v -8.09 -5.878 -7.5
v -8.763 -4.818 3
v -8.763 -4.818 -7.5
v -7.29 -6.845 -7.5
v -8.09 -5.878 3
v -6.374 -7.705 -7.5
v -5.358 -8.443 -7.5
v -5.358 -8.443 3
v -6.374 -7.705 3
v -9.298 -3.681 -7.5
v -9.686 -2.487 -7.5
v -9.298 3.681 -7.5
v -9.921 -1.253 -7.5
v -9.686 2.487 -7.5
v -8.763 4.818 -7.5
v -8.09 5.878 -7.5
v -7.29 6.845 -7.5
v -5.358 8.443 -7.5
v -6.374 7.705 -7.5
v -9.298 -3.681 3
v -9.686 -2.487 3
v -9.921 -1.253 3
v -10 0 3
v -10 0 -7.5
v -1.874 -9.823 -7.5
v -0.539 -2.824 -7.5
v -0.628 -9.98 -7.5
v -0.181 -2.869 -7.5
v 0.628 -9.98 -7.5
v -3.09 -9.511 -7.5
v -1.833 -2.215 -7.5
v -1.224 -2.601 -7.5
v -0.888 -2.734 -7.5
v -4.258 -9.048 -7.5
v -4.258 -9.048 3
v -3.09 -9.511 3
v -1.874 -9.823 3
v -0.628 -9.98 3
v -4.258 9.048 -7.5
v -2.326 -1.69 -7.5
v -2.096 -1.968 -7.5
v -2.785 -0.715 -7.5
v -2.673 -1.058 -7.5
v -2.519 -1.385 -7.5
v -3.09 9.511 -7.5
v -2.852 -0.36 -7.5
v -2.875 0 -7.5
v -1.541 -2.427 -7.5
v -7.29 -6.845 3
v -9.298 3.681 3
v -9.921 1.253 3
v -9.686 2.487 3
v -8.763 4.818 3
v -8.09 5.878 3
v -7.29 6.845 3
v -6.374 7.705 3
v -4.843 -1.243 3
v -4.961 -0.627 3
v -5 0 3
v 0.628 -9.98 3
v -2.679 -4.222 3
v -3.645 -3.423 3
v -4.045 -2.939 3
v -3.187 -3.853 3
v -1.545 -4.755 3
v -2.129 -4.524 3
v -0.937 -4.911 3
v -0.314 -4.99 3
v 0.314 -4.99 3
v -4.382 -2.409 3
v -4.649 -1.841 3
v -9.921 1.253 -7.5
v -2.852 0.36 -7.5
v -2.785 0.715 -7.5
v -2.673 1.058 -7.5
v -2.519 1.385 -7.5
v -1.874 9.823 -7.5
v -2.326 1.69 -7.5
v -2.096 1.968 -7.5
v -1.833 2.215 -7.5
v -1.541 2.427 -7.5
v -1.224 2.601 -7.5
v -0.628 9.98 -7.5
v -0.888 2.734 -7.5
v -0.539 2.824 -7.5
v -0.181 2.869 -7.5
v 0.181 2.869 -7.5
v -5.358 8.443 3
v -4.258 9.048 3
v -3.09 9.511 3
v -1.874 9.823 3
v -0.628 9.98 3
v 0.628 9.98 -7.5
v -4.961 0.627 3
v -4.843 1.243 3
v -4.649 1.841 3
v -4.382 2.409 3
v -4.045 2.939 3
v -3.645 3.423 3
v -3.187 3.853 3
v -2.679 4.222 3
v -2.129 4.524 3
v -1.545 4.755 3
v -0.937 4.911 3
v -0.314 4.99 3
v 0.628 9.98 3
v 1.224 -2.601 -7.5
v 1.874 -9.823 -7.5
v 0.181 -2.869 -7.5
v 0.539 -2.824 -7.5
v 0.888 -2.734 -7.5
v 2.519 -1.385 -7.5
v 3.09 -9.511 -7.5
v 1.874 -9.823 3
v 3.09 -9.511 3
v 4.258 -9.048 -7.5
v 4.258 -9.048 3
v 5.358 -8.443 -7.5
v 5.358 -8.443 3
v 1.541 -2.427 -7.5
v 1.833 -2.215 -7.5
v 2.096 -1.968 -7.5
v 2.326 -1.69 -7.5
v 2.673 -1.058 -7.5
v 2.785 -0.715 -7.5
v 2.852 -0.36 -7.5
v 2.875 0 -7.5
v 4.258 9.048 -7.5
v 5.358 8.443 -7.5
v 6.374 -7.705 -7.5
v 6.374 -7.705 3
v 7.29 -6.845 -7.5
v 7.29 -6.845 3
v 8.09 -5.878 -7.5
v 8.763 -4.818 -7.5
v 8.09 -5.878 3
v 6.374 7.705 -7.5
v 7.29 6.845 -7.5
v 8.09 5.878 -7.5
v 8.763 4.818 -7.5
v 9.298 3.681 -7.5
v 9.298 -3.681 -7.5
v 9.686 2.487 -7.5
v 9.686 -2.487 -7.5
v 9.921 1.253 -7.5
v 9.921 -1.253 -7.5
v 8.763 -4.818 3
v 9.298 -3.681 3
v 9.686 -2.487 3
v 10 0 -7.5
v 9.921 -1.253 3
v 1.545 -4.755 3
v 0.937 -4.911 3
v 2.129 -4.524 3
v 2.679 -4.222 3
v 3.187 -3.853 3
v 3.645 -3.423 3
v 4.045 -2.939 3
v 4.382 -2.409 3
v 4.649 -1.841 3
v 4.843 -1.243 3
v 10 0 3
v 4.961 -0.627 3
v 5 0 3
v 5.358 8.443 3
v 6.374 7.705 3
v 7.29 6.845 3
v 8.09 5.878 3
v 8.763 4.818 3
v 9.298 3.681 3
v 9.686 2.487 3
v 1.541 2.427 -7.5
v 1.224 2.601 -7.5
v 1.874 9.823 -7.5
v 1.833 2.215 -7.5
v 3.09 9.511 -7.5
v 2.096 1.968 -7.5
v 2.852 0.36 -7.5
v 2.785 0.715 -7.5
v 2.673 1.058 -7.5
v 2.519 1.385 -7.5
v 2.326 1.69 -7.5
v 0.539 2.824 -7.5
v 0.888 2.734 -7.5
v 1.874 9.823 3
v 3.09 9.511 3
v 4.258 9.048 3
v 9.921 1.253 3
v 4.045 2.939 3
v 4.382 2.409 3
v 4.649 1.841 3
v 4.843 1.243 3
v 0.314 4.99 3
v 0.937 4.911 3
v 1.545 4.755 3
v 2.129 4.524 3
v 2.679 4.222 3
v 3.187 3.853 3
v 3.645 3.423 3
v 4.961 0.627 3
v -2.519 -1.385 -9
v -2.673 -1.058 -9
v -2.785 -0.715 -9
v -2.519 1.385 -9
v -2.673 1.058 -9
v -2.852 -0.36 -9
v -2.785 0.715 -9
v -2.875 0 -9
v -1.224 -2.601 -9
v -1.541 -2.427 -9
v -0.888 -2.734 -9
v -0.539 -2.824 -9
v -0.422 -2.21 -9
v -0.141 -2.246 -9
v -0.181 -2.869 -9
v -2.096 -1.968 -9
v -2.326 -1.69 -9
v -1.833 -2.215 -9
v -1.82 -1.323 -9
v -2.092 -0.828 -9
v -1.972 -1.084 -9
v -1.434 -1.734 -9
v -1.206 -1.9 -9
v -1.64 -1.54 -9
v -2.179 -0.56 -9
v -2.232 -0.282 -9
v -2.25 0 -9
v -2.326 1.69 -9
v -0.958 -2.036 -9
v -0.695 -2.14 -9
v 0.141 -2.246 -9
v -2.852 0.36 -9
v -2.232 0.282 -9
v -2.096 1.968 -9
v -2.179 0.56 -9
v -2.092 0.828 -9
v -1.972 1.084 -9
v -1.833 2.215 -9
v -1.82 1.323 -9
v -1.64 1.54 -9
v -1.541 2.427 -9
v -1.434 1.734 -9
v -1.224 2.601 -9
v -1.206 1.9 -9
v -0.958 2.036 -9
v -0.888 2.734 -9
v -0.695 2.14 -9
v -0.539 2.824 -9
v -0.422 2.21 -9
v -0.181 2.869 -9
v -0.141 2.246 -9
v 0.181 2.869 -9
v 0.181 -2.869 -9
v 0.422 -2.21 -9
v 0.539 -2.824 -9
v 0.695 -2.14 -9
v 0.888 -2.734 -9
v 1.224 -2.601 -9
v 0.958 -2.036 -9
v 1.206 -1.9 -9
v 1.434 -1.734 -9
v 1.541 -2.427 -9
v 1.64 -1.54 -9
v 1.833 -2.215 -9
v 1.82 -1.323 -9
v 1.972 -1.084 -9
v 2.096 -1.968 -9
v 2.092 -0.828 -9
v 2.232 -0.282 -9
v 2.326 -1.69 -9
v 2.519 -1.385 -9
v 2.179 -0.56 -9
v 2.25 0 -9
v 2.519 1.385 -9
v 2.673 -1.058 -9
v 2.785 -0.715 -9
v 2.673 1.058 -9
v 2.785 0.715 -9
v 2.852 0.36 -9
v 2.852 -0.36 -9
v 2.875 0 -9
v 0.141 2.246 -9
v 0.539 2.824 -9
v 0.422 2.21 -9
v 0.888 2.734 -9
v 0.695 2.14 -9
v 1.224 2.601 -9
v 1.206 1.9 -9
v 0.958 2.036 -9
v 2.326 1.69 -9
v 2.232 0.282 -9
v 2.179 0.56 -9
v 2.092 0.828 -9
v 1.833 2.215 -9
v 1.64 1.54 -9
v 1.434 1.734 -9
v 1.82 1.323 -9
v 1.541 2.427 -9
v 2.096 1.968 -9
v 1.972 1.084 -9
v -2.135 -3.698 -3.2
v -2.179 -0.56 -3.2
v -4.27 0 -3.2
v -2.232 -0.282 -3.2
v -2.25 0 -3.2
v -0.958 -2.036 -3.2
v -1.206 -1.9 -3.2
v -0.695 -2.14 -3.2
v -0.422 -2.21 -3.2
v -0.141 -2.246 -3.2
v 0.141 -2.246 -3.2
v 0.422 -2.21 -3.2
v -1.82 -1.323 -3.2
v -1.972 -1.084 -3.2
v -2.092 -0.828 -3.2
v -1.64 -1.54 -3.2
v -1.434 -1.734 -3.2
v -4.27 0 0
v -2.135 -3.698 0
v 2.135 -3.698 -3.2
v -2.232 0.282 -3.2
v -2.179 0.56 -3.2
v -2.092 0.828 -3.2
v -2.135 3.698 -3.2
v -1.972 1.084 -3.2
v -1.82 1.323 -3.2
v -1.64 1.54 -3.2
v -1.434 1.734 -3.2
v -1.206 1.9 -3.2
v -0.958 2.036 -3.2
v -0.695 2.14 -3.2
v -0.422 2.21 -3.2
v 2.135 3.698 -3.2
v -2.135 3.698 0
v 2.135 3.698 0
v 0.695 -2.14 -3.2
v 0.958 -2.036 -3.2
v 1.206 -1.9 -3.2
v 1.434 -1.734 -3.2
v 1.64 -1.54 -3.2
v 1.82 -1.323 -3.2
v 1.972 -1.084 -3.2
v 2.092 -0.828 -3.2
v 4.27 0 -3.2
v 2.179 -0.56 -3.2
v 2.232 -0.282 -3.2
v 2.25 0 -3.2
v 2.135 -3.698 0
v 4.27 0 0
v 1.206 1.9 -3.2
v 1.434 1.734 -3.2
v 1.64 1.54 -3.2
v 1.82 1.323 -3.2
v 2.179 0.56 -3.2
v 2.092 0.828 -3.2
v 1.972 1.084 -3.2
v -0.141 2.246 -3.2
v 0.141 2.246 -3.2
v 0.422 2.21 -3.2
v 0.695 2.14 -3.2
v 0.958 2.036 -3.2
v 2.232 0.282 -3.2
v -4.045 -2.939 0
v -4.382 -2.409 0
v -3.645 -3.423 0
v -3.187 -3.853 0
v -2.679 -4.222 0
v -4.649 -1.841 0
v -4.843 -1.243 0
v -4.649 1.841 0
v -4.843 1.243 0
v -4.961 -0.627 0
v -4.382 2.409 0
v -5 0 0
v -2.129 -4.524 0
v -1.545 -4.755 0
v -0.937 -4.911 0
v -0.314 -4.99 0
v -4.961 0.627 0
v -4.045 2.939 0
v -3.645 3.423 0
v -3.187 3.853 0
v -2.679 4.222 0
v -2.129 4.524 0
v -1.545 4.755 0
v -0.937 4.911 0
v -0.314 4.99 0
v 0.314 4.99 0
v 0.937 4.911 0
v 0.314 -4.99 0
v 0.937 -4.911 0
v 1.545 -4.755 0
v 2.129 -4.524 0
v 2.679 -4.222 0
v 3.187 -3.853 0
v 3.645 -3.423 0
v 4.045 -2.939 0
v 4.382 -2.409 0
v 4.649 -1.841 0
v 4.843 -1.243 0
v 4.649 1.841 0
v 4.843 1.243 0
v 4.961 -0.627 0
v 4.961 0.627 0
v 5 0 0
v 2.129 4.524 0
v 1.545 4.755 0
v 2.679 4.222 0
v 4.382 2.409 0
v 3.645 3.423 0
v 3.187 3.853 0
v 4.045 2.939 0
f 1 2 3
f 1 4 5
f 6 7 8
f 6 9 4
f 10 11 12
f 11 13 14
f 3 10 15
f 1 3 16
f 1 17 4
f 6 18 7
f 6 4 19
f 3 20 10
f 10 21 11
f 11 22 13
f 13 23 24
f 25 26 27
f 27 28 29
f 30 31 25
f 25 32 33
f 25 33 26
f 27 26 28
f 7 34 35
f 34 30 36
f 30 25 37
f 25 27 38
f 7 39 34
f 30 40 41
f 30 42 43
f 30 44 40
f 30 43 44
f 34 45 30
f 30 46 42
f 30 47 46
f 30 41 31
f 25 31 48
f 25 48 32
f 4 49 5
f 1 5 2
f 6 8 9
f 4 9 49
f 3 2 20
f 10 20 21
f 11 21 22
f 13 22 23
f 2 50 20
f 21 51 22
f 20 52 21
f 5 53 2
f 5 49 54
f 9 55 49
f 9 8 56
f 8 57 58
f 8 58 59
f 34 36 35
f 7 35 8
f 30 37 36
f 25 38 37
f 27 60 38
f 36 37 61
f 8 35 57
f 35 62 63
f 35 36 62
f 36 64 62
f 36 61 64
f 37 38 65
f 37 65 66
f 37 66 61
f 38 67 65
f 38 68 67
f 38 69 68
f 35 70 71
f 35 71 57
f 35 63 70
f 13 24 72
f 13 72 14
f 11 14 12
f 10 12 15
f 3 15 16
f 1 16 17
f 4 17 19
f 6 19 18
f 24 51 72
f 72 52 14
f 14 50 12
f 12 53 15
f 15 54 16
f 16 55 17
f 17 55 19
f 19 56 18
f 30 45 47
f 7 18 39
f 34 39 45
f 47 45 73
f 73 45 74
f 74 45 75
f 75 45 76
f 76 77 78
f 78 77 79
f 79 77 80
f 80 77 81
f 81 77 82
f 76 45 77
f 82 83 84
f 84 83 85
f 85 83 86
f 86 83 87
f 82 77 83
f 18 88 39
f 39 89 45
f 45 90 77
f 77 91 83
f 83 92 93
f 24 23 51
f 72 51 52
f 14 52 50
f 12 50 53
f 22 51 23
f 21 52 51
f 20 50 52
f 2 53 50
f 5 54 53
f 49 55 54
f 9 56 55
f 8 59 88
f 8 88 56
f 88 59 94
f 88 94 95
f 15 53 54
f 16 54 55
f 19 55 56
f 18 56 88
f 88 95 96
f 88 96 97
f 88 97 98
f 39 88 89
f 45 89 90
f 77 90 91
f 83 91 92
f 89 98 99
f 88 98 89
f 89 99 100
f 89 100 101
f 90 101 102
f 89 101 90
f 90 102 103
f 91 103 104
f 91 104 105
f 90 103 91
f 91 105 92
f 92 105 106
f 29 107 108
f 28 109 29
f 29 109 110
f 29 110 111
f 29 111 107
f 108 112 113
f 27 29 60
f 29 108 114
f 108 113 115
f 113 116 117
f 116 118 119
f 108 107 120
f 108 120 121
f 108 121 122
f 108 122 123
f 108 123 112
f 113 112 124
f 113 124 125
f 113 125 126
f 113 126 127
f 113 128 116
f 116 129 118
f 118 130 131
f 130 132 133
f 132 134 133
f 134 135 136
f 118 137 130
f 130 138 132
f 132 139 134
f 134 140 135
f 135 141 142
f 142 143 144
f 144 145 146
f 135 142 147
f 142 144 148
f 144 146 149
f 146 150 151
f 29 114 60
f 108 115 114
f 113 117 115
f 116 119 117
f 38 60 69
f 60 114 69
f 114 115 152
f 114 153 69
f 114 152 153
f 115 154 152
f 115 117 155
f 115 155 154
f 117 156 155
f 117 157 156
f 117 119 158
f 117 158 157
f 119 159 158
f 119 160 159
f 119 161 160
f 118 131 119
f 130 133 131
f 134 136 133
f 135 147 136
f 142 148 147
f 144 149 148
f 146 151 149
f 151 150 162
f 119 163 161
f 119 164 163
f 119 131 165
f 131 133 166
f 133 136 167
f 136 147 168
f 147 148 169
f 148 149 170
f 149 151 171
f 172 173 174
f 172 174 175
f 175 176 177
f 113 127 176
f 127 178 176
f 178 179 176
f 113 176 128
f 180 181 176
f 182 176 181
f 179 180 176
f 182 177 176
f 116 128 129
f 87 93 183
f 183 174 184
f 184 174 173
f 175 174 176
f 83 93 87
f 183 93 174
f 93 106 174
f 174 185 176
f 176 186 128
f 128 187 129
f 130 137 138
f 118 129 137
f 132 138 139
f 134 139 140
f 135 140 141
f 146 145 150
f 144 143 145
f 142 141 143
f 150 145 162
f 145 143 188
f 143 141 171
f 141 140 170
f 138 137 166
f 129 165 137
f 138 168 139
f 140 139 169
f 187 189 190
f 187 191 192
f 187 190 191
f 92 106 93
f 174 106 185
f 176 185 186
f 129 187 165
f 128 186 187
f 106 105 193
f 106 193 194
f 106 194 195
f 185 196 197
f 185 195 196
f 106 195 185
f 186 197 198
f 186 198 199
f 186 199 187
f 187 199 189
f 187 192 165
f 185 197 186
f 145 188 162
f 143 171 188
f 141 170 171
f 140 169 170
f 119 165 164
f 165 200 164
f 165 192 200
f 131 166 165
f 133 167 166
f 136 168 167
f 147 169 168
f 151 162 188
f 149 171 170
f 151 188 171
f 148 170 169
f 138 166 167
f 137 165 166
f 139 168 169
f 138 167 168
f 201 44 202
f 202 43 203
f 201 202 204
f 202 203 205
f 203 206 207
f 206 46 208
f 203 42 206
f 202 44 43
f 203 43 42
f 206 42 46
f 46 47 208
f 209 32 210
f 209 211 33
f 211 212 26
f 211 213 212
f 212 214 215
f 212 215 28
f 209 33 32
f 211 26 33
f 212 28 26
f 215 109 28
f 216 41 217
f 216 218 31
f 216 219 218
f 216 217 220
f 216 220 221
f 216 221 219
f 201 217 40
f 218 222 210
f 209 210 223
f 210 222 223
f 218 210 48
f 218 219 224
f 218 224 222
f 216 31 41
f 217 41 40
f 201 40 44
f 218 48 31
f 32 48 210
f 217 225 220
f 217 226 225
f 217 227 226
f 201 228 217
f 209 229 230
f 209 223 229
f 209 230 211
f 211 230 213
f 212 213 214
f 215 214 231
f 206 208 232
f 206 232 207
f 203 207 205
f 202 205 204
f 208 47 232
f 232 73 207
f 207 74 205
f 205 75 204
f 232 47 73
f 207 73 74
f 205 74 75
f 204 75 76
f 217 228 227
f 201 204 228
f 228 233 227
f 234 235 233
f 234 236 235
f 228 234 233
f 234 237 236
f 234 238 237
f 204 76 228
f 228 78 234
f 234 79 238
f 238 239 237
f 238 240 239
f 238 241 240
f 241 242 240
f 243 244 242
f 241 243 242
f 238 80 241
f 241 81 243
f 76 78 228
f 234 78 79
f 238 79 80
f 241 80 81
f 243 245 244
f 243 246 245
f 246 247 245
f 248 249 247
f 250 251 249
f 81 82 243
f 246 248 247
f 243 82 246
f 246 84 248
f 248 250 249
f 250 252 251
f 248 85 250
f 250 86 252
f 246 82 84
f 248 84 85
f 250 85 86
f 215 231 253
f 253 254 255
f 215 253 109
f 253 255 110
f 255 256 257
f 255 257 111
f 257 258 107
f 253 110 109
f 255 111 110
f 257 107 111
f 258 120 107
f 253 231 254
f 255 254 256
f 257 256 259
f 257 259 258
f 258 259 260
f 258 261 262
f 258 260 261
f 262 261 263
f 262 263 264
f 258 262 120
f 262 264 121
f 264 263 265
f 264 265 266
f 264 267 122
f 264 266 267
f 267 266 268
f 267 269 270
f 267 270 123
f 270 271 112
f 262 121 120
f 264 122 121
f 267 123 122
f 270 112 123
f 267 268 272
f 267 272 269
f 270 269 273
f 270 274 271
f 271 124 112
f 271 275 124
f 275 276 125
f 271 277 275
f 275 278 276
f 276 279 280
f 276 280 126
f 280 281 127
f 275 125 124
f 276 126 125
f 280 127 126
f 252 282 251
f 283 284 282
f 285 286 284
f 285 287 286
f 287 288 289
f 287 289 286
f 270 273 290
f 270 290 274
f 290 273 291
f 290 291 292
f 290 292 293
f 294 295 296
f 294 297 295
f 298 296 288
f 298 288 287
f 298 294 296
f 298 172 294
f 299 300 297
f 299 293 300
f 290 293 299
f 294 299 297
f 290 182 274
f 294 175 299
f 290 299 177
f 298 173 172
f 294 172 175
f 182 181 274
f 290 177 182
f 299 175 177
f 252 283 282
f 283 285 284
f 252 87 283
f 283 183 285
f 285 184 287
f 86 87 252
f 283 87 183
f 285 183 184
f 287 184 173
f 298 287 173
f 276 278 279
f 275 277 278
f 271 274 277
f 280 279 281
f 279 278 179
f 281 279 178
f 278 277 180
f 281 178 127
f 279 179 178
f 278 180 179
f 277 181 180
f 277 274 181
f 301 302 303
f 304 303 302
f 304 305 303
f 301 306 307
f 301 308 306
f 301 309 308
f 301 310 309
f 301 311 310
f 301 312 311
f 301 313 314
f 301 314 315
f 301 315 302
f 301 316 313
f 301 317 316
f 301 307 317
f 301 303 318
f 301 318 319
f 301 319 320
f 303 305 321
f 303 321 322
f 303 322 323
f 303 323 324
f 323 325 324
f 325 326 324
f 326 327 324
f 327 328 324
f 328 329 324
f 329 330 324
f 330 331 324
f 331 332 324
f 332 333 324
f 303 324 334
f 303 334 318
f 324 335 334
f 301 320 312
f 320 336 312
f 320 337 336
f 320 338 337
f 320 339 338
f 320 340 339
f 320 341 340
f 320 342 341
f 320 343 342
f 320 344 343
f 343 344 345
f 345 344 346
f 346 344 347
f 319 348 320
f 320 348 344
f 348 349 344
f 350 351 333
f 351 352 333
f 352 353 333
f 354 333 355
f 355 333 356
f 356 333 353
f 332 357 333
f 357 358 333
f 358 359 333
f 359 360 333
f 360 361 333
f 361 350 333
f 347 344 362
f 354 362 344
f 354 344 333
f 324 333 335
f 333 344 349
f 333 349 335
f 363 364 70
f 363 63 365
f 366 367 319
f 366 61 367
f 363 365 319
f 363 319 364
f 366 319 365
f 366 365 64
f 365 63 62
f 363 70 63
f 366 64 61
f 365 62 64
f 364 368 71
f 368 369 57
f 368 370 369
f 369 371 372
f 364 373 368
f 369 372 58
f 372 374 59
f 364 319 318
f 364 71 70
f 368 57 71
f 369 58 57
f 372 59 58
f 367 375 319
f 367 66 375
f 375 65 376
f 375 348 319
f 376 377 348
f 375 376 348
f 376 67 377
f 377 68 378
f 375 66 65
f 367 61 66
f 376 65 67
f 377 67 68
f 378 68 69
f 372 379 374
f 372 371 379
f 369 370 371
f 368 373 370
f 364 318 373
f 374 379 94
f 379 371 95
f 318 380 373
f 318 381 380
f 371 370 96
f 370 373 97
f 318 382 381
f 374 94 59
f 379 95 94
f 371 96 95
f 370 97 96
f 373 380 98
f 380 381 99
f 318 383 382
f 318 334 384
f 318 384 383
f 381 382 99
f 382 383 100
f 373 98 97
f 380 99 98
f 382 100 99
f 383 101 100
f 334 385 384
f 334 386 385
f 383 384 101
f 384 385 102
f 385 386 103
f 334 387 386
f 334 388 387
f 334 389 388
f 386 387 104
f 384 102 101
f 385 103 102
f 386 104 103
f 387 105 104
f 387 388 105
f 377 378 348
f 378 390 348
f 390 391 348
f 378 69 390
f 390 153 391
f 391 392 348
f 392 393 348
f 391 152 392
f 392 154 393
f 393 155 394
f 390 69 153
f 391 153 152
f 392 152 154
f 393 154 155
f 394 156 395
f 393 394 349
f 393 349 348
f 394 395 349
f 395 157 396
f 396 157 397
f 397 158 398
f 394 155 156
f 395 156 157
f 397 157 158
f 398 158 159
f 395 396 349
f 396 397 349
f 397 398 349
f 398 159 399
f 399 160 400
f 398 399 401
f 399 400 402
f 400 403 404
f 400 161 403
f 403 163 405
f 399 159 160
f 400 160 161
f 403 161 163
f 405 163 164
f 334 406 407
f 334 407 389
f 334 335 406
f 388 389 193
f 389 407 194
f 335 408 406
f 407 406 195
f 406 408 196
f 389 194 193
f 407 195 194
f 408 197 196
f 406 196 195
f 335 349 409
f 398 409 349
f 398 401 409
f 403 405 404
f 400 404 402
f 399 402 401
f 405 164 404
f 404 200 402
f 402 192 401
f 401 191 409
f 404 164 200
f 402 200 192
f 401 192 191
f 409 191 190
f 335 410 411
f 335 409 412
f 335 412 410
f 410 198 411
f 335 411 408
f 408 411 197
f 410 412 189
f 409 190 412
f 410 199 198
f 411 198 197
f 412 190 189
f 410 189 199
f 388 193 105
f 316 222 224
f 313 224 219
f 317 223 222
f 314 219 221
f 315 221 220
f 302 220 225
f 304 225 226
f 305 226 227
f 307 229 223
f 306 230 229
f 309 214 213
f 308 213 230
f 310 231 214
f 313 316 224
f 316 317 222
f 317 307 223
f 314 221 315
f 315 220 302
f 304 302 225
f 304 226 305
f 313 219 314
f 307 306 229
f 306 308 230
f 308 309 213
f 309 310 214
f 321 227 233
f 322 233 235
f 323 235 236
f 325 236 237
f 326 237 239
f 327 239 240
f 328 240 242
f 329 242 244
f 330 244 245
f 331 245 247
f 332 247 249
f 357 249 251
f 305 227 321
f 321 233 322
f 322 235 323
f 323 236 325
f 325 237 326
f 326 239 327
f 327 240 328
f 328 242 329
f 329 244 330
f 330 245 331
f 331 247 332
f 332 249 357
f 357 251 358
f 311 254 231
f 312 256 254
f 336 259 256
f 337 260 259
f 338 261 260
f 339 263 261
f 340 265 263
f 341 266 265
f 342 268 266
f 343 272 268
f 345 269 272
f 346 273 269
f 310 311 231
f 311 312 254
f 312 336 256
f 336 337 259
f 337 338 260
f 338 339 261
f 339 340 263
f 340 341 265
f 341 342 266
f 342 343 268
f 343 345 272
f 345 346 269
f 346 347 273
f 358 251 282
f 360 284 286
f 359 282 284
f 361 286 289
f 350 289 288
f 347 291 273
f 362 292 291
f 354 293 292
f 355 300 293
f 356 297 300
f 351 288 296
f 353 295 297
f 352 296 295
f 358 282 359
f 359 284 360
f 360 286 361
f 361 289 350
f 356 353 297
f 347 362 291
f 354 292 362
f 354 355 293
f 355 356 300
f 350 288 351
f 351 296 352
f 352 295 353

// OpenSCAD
$fn = 50;

difference() {
	union() {
		translate(v = [0, 0, -7.5]) {
			cylinder(h = 10.5, r = 10.0);
		}
		#translate(v = [0, 0, -9.0]) {
			cylinder(h = 9, r = 2.875);
		}
	}
	union() {
		translate(v = [0, 0, 0]) {
			rotate(a = [0, 0, 0]) {
				difference() {
					union() {
						translate(v = [0, 0, -3.2]) {
							linear_extrude(height = 3.2) {
								polygon(points = [[4.2698, 0.0], [2.1349000000000005, 3.697755269078796], [-2.134899999999999, 3.6977552690787965], [-4.2698, 5.228996902999369e-16], [-2.134900000000002, -3.6977552690787956], [2.1348999999999974, -3.697755269078798]]);
							}
						}
					}
					union();
				}
			}
		}
		#cylinder(h = 3, r = 5.0);
		#translate(v = [0, 0, -100.0]) {
			cylinder(h = 200, r = 2.25);
		}
	}
}
